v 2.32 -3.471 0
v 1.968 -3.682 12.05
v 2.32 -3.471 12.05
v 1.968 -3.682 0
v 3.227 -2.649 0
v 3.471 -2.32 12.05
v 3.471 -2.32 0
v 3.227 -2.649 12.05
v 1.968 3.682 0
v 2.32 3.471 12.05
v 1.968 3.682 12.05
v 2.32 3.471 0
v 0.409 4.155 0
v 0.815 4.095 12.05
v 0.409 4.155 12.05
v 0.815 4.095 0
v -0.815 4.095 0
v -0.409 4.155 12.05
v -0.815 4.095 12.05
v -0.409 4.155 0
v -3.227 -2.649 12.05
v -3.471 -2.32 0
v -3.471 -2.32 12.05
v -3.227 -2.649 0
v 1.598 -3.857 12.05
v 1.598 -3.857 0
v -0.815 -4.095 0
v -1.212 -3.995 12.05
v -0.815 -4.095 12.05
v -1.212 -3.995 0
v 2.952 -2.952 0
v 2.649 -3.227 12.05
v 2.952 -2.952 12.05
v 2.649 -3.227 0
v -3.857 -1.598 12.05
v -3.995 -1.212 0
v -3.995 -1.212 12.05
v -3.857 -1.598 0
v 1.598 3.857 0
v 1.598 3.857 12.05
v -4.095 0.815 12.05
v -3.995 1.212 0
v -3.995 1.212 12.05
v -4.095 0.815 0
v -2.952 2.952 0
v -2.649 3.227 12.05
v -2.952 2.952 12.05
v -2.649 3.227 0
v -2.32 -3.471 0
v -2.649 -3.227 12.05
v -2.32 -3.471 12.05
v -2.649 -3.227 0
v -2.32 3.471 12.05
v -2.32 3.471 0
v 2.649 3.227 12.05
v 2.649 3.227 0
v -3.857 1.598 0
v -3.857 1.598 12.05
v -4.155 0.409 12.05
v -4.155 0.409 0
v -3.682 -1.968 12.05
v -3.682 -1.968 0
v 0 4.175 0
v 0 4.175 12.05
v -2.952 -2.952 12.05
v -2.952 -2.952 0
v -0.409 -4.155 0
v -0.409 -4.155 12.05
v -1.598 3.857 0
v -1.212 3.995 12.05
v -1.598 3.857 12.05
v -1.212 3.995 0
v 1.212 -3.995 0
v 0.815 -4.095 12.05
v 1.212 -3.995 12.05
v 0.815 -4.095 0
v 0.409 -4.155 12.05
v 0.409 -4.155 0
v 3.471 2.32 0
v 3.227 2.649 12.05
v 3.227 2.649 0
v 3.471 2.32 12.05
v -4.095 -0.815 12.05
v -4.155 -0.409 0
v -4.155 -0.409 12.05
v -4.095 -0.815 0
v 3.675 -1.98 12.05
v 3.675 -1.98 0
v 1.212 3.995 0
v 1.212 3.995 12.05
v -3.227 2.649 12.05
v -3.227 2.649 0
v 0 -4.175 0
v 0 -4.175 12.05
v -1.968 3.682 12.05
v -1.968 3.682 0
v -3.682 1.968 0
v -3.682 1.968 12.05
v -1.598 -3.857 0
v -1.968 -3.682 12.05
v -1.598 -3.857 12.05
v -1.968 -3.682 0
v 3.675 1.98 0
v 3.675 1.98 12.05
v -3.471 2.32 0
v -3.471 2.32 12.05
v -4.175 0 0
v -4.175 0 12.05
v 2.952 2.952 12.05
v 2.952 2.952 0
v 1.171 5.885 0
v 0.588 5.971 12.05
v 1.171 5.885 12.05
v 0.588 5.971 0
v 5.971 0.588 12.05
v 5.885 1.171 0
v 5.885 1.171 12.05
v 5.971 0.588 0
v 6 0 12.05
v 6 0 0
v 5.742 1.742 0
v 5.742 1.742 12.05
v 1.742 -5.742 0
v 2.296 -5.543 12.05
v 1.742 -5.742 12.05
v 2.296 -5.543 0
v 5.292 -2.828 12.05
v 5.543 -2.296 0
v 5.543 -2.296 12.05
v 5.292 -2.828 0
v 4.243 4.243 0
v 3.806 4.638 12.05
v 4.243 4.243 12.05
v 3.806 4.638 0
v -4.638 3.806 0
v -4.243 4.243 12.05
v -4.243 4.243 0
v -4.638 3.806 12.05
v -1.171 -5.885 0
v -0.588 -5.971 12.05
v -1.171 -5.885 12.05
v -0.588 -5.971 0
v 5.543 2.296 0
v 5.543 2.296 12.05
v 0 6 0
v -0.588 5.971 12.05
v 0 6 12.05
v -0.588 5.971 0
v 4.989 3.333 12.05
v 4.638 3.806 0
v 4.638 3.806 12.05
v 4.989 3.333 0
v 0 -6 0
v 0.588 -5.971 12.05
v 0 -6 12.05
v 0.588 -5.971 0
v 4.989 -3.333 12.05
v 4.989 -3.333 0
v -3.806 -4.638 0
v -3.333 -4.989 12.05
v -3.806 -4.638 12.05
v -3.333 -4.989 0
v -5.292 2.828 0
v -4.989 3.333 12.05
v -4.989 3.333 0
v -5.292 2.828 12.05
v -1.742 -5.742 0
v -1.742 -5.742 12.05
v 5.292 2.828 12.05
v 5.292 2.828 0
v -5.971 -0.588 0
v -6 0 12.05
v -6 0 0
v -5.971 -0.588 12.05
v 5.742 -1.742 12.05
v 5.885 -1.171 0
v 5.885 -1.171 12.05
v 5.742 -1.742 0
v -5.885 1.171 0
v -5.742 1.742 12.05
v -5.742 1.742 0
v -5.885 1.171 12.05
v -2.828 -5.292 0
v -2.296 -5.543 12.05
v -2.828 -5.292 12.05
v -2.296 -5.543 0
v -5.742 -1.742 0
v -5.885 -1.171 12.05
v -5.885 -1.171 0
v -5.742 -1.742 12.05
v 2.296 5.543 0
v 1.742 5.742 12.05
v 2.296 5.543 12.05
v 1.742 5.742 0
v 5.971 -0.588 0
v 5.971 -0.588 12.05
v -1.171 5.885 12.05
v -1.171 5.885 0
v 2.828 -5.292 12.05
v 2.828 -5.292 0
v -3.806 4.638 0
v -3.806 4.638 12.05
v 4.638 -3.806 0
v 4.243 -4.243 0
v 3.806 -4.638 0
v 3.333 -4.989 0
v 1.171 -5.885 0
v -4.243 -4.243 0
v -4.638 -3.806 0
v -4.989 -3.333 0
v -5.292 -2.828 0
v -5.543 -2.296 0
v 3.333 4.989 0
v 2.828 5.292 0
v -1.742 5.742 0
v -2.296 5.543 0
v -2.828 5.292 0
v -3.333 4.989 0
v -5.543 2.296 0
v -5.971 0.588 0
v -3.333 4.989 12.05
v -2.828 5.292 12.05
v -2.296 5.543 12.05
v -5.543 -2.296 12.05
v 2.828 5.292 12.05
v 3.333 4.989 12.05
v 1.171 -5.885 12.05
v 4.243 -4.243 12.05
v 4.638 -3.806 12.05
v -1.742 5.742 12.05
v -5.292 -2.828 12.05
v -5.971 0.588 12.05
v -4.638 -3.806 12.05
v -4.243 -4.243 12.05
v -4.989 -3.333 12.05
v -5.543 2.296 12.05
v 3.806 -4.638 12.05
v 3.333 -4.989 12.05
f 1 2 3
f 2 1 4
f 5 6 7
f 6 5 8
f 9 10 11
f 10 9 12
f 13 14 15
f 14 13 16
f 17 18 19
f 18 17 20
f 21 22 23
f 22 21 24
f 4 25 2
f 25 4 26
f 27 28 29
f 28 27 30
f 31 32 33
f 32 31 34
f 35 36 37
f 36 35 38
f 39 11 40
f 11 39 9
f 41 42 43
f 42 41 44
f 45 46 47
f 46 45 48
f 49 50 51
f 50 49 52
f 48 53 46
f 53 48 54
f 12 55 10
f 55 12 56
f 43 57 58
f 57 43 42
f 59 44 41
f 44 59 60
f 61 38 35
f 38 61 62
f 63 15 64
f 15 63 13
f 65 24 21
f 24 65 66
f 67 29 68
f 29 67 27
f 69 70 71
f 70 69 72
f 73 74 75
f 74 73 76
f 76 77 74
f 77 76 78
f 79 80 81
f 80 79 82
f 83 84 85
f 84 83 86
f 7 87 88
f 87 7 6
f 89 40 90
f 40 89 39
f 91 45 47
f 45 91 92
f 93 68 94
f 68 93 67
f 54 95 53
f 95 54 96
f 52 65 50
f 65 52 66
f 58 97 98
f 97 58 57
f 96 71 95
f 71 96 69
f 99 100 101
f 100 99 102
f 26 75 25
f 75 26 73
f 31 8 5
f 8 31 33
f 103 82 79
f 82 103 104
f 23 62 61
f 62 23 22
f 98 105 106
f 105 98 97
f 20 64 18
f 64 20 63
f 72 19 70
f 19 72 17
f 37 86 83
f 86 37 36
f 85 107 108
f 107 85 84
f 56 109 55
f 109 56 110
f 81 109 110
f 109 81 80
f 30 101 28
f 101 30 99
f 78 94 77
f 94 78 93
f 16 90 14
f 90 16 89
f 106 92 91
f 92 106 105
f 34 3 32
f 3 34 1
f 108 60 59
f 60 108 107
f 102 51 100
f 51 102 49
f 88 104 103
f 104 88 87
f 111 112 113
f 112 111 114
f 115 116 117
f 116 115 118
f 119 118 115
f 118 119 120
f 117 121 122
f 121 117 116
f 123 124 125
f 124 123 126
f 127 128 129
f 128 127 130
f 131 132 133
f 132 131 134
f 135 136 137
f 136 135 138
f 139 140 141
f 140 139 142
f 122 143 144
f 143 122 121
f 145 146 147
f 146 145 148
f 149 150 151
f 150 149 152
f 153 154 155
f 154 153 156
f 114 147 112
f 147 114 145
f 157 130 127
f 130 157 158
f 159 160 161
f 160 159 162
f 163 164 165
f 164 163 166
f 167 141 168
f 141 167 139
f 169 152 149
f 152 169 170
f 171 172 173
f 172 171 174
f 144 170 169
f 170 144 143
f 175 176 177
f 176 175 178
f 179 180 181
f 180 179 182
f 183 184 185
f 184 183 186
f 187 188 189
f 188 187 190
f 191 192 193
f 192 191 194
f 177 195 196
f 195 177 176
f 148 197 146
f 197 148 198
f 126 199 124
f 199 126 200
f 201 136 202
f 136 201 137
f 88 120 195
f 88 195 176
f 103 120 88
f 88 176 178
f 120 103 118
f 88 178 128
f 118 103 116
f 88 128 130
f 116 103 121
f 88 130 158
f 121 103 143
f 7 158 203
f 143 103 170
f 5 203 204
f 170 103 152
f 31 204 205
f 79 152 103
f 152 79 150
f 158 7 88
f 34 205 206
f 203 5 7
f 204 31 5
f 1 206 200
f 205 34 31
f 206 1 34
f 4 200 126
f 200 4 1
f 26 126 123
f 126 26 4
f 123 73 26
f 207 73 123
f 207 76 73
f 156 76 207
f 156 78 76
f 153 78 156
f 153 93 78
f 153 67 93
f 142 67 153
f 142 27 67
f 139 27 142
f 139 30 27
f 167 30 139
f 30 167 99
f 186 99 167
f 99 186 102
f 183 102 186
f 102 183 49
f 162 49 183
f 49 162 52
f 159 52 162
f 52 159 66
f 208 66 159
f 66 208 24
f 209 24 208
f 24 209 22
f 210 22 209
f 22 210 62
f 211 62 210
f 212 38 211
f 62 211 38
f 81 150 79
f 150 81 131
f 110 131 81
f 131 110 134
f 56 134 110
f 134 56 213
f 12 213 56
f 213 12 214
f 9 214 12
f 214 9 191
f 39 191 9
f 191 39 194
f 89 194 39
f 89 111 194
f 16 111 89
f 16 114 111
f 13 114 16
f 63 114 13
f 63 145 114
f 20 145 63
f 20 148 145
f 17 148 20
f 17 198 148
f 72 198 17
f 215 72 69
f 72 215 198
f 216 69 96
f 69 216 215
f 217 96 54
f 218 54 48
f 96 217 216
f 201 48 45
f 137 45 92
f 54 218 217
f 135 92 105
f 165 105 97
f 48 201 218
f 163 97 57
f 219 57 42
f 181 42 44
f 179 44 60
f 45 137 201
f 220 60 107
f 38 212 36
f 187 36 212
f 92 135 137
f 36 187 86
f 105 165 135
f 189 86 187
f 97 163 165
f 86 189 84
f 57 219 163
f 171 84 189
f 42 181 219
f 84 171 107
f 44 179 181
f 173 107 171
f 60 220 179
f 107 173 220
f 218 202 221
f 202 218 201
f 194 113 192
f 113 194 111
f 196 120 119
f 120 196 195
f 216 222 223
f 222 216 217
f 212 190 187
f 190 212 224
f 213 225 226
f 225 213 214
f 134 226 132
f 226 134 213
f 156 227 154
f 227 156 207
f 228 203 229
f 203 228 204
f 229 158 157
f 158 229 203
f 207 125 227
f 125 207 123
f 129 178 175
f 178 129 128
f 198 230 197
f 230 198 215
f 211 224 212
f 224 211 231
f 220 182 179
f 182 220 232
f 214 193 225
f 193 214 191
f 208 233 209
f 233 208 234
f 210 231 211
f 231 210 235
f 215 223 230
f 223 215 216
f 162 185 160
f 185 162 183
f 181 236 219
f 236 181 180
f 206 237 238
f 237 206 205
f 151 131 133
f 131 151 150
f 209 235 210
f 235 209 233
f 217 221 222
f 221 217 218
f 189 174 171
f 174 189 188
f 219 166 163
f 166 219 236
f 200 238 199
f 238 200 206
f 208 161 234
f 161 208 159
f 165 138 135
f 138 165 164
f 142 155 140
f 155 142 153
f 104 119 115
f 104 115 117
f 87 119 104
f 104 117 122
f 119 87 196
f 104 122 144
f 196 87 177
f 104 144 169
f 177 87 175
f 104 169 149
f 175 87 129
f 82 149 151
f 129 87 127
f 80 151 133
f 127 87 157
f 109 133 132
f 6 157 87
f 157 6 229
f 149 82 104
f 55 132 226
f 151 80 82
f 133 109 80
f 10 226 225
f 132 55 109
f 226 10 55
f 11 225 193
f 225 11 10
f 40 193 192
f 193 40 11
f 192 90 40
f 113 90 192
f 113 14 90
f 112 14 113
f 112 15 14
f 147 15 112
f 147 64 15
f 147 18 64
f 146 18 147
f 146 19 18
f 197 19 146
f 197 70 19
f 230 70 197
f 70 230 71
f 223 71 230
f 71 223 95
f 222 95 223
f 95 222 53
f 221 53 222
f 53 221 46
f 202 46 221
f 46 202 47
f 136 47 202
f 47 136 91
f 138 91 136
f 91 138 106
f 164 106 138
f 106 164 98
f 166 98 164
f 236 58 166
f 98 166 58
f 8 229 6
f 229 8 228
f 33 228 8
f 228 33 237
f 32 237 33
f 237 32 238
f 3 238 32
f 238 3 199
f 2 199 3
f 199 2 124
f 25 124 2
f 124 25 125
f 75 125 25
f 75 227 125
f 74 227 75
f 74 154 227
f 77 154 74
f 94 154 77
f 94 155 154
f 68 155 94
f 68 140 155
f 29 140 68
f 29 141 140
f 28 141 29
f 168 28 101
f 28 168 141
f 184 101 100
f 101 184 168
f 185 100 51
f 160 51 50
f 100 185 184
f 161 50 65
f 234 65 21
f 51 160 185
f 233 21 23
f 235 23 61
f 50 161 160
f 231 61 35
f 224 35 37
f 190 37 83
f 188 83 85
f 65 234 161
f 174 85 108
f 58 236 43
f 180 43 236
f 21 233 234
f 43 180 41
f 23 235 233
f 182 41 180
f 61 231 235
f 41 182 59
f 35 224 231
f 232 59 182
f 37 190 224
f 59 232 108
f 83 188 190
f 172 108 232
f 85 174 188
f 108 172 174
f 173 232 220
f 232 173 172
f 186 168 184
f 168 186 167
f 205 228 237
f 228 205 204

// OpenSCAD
// file: parameters.scad
// =============================================================================
// Gen-BN — nightly 2026-10-06 (physics_scorer, honest magpylib watts)
// 8-pole / 9-coil (winding factor 0.945, smoother torque and lower cogging than 6-coil) on the Gen-BK R52 rotors/steel, re-wound dense at fill 0.65 with 9.45 mm copper on 35–70 mm bobbins — more turns per metre than Gen-BK at the same ~360 m wire.
// Clocking 0 deg (magnets N facing S) + D-flat keyed bore + index notch + flip-symmetric hole map.
// Windable 2-piece bobbin; turns = physics_scorer turns_fit; copper only between flanges.
// Steel back-iron: 2× Ø138 × 4.76 mm (3/16") mild-steel discs (steel_backiron_disc.dxf); magnets sit ON the steel
// (through-pockets) -> score with --back-iron.
// =============================================================================
topology            = "dual_rotor";

// --- Wire / winding (physics_scorer winding-fit) -------------------------------
wire_awg            = 26;
wire_od             = 0.45;     // insulated OD mm (bare 0.405)
fill_realistic      = 0.65;     // insulated-wire area / window (DENSE layered wind with a jig; scorer cap 0.65)
turns               = 486;       // = physics_scorer turns_fit (do NOT raise)
coil_former_type    = "bobbin";
coil_core_inset     = 12.60;     // radial copper build: hub = copper boundary inset by this
wind_build_axial    = 0.0;      // nothing proud of the flanges
wind_build_radial   = 0.0;

// --- Bobbin (base + lid) ---------------------------------------------------------
coil_id_r           = 35.00;    // copper boundary sector
coil_od_r           = 70.00;
span_deg            = 33.94;    // = pitch - 2*asin((wall+0.85)/coil_id_r) -> >=1.2 mm stator web
former_web          = 9.45;     // copper height between flanges (TALL copper: steel keeps Bz up)
flange_t            = 0.80;     // >= 0.8 mm FDM wall rule (tall winds push on the flanges)
wall                = 1.00;     // flange lip beyond copper
former_bare_h       = former_web + 2 * flange_t;
coil_envelope_h     = former_bare_h + 2 * wind_build_axial;
tab_w               = 7.0;
tab_len             = 7.0;
tab_h               = former_bare_h / 2;
pin_d               = 1.9;      // 1.75 mm filament locating pin
coil_mount_r        = coil_od_r + 0.2 + 4.0;
lead_y              = 1.6;
lead_slot_w         = 0.9;
lead_groove_d       = 0.6;

// --- Gap -------------------------------------------------------------------------
run_clear           = 0.50;     // rotor face -> flange
gap_spacer_h        = run_clear + wind_build_axial;
m2m                 = coil_envelope_h + 2 * run_clear;   // rotor face to rotor face (= gap_sleeve length)

// --- Stator ----------------------------------------------------------------------
coil_stations       = 9;
bay_clear           = 0.25;
stator_thick        = former_bare_h;                        // bobbins flush both faces
stator_od           = 160.0;
shaft_clear_stator  = 14.0;     // stator is static; gap sleeve OD 12 spins inside

// --- Rotor(s) --------------------------------------------------------------------
magnet_Br           = 1.43;     // N52
magnet_d_large      = 20.0;
magnet_h_large      = 5.0;      // one O20x5 per pocket
magnet_h_small      = 5.0;      // one O5x5 per pocket
halbach_magnetisation = "diametric"; // O5x5 assist magnets MUST be DIAMETRICALLY magnetised (tangential)
rotor_b_same_axis   = true;     // same-index magnets share one axis: N faces S across the gap
large_pocket_d      = 20.3;
small_pocket_d      = 5.3;
pocket_h            = 5.10;     // THROUGH the carrier: magnet back face sits on the steel disc
large_n             = 8;
R_large             = 52.0;
R_small_inner       = 41.0;
R_small_mid         = 52.0;
R_small_outer       = 63.0;
small_r_list        = [R_small_inner, R_small_mid, R_small_outer];   // O5 pockets between poles
carrier_od          = 138.0;
carrier_thick       = pocket_h;
hub_h               = 12.0;     // > steel_t + insert: radial set-screw clears the steel
hub_od              = 24.0;     // slim hub so the M4 brace rods fit at R~18 inside the coil ring
hub_insert_d        = 4.0;      // M3 heat-set insert, radial, bears on the D-flat
rotor_b_offset_deg  = 0.0;      // CLOCKING: magnets directly opposite
shaft_key           = "dflat";
dflat_depth         = 0.5;      // 8 mm shaft with 0.5 mm flat (7.5 across flat)
index_notch_d       = 3.0;

// --- Steel back-iron (buyable laser-cut) -------------------------------------------
steel_t             = 4.76;      // mild steel thickness (image method ignores it; sized from steel_flux.py so the return path stays well below saturation)
steel_center_hole   = 26.0;     // slips over the rotor hub (OD 24)
steel_od            = carrier_od;   // steel disc OD = rotor carrier OD

// --- Modular MAX interface ----------------------------------------------------------
shaft_bore          = 8.35;
dflat_x             = 4.0 - dflat_depth + (shaft_bore - 8.0) / 2;
bearing_d           = 21.85;
bearing_h           = 7.2;
m3_clear            = 3.5;
bolt_r_inner        = 30.0;     // M3 steel-disc clamp bolts (inside the magnet ring)
bolt_n_inner        = 4;
bolt_inner_angles   = [0, 90, 180, 270];
bolt_r_outer        = 65.0;     // M3 steel-disc clamp bolts (outside the magnet ring)
bolt_outer_angles   = [45, 135, 225, 315];
flange_bolt_r       = 75.0;     // frame rods: OUTSIDE the rotor OD (rotors spin inside them)
flange_bolt_n       = 9;
flange_bolt_offset  = 20.00;    // between coil stations -> never cuts a lead groove/tab
brace_r             = 18.0;
brace_d             = 4.3;      // temporary M4 jack rods (assembly only)
brace_n             = 4;
brace_angles        = [45, 135, 225, 315];          // flip-symmetric

spacer_pad_od       = 14.0;
spacer_pad_id       = m3_clear;
endbell_od          = 160.0;
endbell_thick       = 8.0;
endbell_shaft_clear = 10.0;
collar_h            = 10.0;
standoff_od         = 9.0;
frame_standoff_h    = run_clear + carrier_thick + hub_h + collar_h + 2.0;
sleeve_od           = 12.0;
plate_max_mm        = 410;

$fn = 64;
// main file
// Gen-BN — gap sleeve: rigid spacer on the shaft BETWEEN the two rotor carriers (passes through the stator
// hole). Length = m2m, so it sets the magnet gap and carries the full magnet pull. Print x1, upright.
include <parameters.scad>;
$fn = 64;
// D-flat keyed bore: flat faces +X (angle 0 = magnet pocket 0 = index notch)
module dflat_bore(h) {
    intersection() {
        cylinder(d=shaft_bore, h=h);
        translate([-shaft_bore, -shaft_bore, 0]) cube([shaft_bore + dflat_x, 2*shaft_bore, h]);
    }
}

difference() {
    cylinder(d=sleeve_od, h=m2m);
    translate([0, 0, -0.1]) dflat_bore(m2m + 0.2);
}
